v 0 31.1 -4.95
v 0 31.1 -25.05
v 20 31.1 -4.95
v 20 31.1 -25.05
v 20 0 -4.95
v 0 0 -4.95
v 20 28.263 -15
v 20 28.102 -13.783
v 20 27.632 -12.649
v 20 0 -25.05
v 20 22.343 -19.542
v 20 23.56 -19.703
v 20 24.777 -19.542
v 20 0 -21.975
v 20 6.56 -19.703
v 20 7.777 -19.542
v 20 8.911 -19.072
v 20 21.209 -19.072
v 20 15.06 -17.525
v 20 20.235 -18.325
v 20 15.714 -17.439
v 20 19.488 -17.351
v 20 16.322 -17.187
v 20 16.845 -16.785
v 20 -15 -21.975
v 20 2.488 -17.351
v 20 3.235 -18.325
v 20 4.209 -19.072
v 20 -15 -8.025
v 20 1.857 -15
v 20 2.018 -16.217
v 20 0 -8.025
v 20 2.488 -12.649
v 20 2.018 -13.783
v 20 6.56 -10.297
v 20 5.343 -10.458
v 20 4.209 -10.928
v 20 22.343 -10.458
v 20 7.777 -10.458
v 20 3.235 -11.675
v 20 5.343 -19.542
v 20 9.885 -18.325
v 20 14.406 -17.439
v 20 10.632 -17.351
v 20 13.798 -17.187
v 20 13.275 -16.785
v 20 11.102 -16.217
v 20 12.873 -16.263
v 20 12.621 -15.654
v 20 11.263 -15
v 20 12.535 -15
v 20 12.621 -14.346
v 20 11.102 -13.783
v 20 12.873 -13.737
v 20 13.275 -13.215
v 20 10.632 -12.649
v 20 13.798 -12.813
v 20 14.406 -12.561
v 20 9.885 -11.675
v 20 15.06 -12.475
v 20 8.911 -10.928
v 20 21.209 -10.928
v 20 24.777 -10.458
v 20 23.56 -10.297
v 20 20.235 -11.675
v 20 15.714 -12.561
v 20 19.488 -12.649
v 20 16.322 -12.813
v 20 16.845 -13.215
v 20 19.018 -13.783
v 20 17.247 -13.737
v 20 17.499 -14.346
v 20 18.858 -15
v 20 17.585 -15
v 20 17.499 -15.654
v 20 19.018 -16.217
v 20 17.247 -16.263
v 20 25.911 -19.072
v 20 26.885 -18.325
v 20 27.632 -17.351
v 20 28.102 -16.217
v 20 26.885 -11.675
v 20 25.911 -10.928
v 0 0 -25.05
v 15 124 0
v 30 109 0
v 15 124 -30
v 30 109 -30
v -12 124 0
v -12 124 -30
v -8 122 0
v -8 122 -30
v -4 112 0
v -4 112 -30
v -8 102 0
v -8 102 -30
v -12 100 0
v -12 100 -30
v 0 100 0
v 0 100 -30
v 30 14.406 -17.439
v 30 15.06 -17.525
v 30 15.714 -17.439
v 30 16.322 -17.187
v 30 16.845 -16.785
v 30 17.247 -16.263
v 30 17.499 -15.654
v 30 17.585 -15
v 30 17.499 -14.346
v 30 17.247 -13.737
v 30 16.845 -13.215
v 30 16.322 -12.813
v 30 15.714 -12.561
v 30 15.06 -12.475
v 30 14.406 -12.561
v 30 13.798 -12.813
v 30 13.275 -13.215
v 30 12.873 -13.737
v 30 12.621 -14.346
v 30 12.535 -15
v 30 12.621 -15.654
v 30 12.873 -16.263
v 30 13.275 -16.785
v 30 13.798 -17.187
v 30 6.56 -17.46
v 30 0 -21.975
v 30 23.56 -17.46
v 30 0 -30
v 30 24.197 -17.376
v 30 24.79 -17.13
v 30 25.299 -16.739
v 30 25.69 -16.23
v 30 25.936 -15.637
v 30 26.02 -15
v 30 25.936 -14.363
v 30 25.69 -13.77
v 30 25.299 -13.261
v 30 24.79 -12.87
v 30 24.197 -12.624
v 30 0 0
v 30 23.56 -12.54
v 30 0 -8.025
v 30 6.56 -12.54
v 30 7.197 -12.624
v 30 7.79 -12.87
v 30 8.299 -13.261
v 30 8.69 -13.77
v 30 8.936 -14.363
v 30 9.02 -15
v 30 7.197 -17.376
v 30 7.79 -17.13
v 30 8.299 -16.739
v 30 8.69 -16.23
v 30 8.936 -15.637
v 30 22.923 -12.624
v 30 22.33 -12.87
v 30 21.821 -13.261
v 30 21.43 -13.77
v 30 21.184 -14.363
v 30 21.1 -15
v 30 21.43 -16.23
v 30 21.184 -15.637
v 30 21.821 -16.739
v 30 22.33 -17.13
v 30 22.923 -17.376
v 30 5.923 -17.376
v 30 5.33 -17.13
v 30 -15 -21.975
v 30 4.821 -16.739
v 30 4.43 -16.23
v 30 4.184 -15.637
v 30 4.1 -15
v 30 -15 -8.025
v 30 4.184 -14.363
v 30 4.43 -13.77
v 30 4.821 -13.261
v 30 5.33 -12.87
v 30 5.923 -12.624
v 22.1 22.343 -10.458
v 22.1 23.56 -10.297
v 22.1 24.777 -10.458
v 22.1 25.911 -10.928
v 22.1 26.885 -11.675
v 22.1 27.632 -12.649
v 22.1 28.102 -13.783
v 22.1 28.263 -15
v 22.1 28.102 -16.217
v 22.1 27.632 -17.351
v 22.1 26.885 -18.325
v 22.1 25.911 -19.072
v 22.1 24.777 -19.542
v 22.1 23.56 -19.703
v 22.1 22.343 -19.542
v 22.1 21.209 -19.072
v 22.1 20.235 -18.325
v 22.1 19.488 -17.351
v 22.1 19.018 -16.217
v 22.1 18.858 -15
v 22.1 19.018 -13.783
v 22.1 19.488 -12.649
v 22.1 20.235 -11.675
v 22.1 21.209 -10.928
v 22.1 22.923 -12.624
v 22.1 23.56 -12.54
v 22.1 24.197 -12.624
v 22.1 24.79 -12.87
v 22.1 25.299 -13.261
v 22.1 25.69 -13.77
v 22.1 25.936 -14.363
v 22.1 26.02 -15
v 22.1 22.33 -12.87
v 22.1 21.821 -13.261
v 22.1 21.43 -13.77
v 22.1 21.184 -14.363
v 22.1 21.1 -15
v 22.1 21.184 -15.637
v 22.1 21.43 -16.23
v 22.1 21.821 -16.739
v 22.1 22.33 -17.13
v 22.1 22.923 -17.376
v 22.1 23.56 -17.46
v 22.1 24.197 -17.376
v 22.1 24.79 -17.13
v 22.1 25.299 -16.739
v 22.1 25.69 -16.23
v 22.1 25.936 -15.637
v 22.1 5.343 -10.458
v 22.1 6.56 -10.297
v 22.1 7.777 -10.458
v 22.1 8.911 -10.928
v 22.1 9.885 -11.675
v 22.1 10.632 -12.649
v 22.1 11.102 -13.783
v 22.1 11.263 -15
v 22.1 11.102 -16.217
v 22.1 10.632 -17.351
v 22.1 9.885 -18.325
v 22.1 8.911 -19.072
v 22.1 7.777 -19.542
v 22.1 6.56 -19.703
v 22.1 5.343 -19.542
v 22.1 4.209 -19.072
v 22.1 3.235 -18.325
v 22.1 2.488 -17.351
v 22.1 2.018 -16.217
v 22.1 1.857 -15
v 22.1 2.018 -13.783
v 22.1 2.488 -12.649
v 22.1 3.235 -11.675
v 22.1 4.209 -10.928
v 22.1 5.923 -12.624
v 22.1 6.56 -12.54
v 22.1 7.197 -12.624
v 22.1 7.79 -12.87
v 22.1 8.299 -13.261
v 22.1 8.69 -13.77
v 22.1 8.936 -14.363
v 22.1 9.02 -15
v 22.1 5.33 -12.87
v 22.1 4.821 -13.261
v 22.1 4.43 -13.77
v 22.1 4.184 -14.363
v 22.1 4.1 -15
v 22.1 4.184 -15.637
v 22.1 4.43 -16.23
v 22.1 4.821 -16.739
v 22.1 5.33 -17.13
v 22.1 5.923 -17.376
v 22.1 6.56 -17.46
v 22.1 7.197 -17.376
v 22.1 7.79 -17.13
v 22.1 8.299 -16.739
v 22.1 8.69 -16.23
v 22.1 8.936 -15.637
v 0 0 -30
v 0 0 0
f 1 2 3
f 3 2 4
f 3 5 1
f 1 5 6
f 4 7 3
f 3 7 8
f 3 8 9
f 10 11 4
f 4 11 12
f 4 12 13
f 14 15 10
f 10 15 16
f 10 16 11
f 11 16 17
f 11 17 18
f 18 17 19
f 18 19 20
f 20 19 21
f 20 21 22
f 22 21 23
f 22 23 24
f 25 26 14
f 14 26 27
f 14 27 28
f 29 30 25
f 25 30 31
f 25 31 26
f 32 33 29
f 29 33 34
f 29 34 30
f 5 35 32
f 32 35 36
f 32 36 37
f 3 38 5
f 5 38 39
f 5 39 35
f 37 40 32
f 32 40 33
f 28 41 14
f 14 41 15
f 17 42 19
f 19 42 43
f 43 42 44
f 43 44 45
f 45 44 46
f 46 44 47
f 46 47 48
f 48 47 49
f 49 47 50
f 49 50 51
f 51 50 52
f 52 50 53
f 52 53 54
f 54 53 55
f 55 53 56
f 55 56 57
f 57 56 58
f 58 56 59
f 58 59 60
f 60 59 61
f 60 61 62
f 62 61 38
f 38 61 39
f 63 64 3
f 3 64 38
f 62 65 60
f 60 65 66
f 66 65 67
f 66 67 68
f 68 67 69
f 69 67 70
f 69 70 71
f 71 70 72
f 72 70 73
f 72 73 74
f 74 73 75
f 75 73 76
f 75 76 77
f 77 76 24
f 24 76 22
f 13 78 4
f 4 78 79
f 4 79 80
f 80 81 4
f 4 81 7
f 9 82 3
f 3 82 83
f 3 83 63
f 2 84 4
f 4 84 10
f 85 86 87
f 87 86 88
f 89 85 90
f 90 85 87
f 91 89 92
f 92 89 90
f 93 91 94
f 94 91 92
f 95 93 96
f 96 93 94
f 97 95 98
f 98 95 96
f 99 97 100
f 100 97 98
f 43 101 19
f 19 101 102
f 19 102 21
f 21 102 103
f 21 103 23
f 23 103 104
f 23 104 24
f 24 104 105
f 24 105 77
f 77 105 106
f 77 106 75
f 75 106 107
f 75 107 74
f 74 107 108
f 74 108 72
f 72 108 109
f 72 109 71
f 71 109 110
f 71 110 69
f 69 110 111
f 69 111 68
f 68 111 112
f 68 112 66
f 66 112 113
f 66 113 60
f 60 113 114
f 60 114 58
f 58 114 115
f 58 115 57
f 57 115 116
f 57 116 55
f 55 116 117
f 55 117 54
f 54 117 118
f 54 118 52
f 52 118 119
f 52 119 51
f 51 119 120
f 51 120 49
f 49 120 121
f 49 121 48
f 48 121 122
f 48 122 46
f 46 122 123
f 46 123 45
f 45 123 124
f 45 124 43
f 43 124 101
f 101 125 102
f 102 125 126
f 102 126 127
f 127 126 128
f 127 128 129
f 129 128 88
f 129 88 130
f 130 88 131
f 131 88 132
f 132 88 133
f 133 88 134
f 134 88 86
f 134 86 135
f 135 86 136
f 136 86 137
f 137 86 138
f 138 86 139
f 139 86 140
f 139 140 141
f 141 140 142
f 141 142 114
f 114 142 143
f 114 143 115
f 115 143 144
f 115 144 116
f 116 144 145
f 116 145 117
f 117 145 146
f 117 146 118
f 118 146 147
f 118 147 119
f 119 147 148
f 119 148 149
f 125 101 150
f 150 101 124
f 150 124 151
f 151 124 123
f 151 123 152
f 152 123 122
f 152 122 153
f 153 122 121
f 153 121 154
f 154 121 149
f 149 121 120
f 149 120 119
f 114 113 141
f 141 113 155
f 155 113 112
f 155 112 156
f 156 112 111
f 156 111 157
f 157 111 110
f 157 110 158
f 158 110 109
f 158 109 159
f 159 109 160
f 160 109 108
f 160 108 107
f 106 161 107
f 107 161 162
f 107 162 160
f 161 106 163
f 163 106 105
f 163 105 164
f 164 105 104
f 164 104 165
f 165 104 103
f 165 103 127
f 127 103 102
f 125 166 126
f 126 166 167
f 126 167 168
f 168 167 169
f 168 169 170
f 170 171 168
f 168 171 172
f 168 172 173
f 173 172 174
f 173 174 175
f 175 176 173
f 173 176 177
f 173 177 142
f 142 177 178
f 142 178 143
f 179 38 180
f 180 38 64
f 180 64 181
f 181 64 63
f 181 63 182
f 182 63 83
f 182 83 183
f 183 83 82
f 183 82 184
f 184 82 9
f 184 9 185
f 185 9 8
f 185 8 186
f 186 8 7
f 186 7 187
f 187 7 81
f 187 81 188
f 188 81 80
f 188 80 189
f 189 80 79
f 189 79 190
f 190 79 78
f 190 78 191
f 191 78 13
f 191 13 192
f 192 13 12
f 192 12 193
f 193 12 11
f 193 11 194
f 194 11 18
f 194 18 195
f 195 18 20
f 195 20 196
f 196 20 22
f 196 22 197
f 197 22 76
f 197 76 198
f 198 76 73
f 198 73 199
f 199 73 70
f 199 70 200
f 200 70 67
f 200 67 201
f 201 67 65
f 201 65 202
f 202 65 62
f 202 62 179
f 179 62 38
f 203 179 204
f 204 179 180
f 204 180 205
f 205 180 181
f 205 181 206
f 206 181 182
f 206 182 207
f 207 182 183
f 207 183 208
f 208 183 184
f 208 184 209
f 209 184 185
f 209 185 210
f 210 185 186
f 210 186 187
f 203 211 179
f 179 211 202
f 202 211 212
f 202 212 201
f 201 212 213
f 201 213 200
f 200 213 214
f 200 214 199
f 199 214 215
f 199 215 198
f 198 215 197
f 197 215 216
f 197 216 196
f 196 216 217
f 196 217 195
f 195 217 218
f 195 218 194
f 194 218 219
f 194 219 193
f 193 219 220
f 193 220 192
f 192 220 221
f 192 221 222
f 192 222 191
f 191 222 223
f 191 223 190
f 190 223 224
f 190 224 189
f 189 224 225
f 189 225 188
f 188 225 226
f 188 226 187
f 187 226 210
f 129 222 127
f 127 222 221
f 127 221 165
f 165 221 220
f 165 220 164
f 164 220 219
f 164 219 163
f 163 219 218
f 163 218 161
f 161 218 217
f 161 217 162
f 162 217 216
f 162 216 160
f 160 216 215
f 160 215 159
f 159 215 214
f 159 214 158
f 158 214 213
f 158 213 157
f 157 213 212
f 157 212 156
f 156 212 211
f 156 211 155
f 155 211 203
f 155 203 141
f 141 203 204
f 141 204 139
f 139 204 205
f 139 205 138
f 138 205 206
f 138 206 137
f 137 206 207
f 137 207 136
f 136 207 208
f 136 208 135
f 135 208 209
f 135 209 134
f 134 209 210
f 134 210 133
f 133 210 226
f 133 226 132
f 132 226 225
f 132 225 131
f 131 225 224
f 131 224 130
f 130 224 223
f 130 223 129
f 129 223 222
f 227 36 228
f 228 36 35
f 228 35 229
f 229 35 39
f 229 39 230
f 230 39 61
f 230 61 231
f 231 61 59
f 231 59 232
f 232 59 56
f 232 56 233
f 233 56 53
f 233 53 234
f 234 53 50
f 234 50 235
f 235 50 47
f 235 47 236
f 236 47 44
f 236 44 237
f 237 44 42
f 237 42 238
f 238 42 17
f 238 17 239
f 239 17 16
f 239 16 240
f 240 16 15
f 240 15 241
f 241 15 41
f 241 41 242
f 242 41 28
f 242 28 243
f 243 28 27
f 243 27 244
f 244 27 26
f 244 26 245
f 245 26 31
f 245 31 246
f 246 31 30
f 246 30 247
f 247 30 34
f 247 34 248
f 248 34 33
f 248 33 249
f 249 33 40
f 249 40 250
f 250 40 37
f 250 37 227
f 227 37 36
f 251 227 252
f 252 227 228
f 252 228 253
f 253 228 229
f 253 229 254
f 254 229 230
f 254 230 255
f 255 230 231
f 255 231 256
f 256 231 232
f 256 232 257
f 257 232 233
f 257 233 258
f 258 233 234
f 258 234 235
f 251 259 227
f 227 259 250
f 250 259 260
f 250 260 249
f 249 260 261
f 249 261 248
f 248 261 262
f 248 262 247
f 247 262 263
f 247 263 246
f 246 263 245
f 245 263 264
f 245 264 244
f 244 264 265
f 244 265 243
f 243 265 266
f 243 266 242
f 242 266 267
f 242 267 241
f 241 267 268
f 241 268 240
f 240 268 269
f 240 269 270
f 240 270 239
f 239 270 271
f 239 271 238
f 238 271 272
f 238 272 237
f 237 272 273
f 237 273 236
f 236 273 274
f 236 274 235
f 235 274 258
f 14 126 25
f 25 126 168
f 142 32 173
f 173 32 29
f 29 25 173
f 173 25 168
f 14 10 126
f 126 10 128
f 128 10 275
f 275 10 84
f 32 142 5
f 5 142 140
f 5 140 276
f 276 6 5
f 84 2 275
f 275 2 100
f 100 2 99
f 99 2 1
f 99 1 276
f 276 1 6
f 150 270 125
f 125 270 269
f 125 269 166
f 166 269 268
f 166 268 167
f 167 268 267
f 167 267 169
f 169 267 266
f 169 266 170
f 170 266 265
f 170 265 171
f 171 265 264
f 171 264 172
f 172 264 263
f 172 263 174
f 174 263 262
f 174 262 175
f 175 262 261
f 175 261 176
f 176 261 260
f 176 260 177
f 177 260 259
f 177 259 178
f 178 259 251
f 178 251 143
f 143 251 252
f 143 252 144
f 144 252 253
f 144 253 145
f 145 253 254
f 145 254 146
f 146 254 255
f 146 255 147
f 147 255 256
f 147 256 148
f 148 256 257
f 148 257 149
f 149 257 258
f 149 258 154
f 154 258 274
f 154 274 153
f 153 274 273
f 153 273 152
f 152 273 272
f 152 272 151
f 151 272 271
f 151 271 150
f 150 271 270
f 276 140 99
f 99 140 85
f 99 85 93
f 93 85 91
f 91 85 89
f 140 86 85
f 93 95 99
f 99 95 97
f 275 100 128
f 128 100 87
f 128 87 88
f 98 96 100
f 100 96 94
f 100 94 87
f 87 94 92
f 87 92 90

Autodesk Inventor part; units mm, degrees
ref_plane "YZ Plane" through (0, 0, 0) normal (1, 0, 0) x (0, 1, 0)
ref_plane "XZ Plane" through (0, 0, 0) normal (0, 1, 0) x (-1, 0, 0)
ref_plane "XY Plane" through (0, 0, 0) normal (0, 0, 1) x (1, 0, 0)
sketch "Sketch1" plane through (0, 0, 0) normal (0, 0, 1) x (1, 0, 0)
  line L0 (0, 0) -> (25, 0)
  line L1 (25, 0) -> (25, 40)
  line L2 (25, 40) -> (0, 40)
  line L3 (0, 40) -> (0, 0)
  dimension "d1" = 25
  dimension "d2" = 40
  dimension "d3" = 25
extrude "Extrusion1" add sketch "Sketch1" against normal blind 30
sketch "Sketch2" plane through (25, 0, 0) normal (1, 0, 0) x (0, 0, -1)
  line L0 (0, 0) -> (30, 0) projected
  circle A0 centre (15, 6.56) radius 2.46
extrude "Extrusion2" cut sketch "Sketch2" against normal blind 30
sketch "Sketch3" plane through (0, 0, 0) normal (-1, 0, 0) x (0, 0, 1)
  line L0 (0, 0) -> (-30, 0) projected
  line L1 (-25.05, 0) -> (-4.95, 0)
  line L2 (-4.95, 0) -> (-4.95, 33.12)
  line L3 (-4.95, 33.12) -> (-25.05, 33.12)
  line L4 (-25.05, 33.12) -> (-25.05, 0)
  dimension "d11" = 20.1
extrude "Extrusion3" cut sketch "Sketch3" against normal blind 20
sketch "Sketch4" plane through (0, 0, 0) normal (0, -1, 0) x (1, 0, 0)
  line L0 (20, -4.95) -> (20, -25.05) projected
  line L1 (20, -15) -> (25, -15)
  line L2 (25, 0) -> (25, -30) projected
  line L3 (20, -8.025) -> (25, -8.025)
  line L4 (25, -8.025) -> (25, -21.975)
  line L5 (25, -21.975) -> (20, -21.975)
  line L6 (20, -21.975) -> (20, -8.025)
  line L7 (20, -8.025) -> (25, -21.975) construction
  line L8 (25, -8.025) -> (20, -21.975) construction
  line L9 (25, -12.54) -> (25, -17.46) projected
  point P0 (0, 0)
  point P1 (22.5, -15)
  dimension "d14" = 13.95
extrude "Extrusion4" add sketch "Sketch4" along normal blind 15
sketch "Sketch5" plane through (20, 0, 0) normal (-1, 0, 0) x (0, 0, 1)
  circle A0 centre (-15, 6.56) radius 2.46 projected
  circle A1 centre (-15, 6.56) radius 4.7025
  circle A2 centre (-15, 6.56) radius 2.46 projected
  circle A3 centre (-15, 6.56) radius 2.46
  point P0 (0, 0)
  dimension "d17" = 9.405
extrude "Extrusion5" cut sketch "Sketch5" against normal blind 2.1
sketch "Sketch6" plane through (25, 0, 0) normal (1, 0, 0) x (0, 0, -1)
  circle A0 centre (15, 6.56) radius 4.7025 projected
  line L0 (15, 6.56) -> (15, 23.56)
  circle A1 centre (15, 23.56) radius 2.46
  point P0 (0, 0)
  dimension "d20" = 17
  dimension "d21" = 4.92
extrude "Extrusion6" cut sketch "Sketch6" against normal blind 10 contours A1
sketch "Sketch7" plane through (20, 0, 0) normal (-1, 0, 0) x (0, 0, 1)
  circle A0 centre (-15, 23.56) radius 2.46 projected
  circle A1 centre (-15, 23.56) radius 4.7025
  point P0 (0, 0)
  dimension "d24" = 9.405
extrude "Extrusion7" cut sketch "Sketch7" against normal blind 2.1
sketch "Sketch9" plane through (25, 0, 0) normal (1, 0, 0) x (0, 0, -1)
  circle A0 centre (15, 6.56) radius 2.46 projected
  circle A1 centre (15, 6.56) radius 2.46
  circle A2 centre (15, 23.56) radius 2.46 projected
  circle A3 centre (15, 23.56) radius 2.46
  line L0 (30, 40) -> (30, 0) projected
  line L1 (30, 0) -> (30, 40)
  line L2 (30, 40) -> (0, 40)
  line L3 (0, 40) -> (0, 0)
  line L4 (0, 0) -> (8.025, 0) projected
  line L5 (21.975, 0) -> (21.975, -15)
  line L6 (21.975, -15) -> (8.025, -15)
  line L7 (8.025, -15) -> (8.025, 0)
  line L8 (0, 0) -> (8.025, 0)
  line L9 (21.975, 0) -> (30, 0)
extrude "Extrusion8" add sketch "Sketch9" along normal blind 5
sketch "Sketch10" plane through (0, 40, 0) normal (0, 1, 0) x (1, 0, 0)
  line L0 (0, 30) -> (30, 30) projected
  line L1 (30, 0) -> (0, 0) projected
  line L2 (0, 30) -> (30, 30)
  line L3 (30, 30) -> (30, 0)
  line L4 (30, 0) -> (0, 0)
  line L5 (0, 0) -> (0, 30)
extrude "Extrusion9" add sketch "Sketch10" along normal blind 30
sketch "Sketch12" plane through (30, 0, 0) normal (1, 0, 0) x (0, 0, -1)
  circle A0 centre (15, 6.56) radius 2.46 projected
  line L0 (15, 6.56) -> (15, 15.06)
  circle A1 centre (15, 15.06) radius 2.525
  point P0 (0, 0)
  dimension "d31" = 8.5
  dimension "d33" = 5.05
extrude "Extrusion10" cut sketch "Sketch12" against normal blind 30 contours A1
sketch "Sketch14" plane through (0, 0, 0) normal (0, 0, 1) x (1, 0, 0)
  line L0 (30, 70) -> (0, 70) projected
  line L1 (0, 70) -> (0, 85)
  line L2 (30, 0) -> (30, 70) projected
  line L3 (30, 109) -> (30, 70)
  line L4 (30, 105) -> (30, 100)
  line L5 (-12, 124) -> (15, 124)
  line L6 (-8, 122) -> (-12, 124)
  line L7 (-8, 122) -> (-4, 112)
  line L8 (-8, 102) -> (-12, 100)
  line L9 (-8, 102) -> (-4, 112)
  line L10 (30, 109) -> (15, 124)
  line L11 (0, 85) -> (0, 100)
  line L12 (0, 100) -> (-12, 100)
  point P0 (0, 0)
  dimension "d69" = 12
extrude "Extrusion12" add sketch "Sketch14" against normal blind 30
sketch "Sketch15" plane through (0, 0, -25.05) normal (-1, 0, 0) x (0, 0, 1)
  line L0 (0, 33.12) -> (20.1, 33.12) projected
  line L1 (20.1, 33.12) -> (20.1, 0) projected
  line L2 (0, 33.12) -> (20.1, 33.12)
  line L3 (20.1, 33.12) -> (20.1, 31.1)
  line L4 (20.1, 31.1) -> (0, 31.1)
  line L5 (0, 31.1) -> (0, 33.12)
  point P0 (25.05, 0)
  dimension "d57" = 2.02
extrude "Extrusion13" add sketch "Sketch15" against normal blind 20
properties part number "20mm_x_30mm"
